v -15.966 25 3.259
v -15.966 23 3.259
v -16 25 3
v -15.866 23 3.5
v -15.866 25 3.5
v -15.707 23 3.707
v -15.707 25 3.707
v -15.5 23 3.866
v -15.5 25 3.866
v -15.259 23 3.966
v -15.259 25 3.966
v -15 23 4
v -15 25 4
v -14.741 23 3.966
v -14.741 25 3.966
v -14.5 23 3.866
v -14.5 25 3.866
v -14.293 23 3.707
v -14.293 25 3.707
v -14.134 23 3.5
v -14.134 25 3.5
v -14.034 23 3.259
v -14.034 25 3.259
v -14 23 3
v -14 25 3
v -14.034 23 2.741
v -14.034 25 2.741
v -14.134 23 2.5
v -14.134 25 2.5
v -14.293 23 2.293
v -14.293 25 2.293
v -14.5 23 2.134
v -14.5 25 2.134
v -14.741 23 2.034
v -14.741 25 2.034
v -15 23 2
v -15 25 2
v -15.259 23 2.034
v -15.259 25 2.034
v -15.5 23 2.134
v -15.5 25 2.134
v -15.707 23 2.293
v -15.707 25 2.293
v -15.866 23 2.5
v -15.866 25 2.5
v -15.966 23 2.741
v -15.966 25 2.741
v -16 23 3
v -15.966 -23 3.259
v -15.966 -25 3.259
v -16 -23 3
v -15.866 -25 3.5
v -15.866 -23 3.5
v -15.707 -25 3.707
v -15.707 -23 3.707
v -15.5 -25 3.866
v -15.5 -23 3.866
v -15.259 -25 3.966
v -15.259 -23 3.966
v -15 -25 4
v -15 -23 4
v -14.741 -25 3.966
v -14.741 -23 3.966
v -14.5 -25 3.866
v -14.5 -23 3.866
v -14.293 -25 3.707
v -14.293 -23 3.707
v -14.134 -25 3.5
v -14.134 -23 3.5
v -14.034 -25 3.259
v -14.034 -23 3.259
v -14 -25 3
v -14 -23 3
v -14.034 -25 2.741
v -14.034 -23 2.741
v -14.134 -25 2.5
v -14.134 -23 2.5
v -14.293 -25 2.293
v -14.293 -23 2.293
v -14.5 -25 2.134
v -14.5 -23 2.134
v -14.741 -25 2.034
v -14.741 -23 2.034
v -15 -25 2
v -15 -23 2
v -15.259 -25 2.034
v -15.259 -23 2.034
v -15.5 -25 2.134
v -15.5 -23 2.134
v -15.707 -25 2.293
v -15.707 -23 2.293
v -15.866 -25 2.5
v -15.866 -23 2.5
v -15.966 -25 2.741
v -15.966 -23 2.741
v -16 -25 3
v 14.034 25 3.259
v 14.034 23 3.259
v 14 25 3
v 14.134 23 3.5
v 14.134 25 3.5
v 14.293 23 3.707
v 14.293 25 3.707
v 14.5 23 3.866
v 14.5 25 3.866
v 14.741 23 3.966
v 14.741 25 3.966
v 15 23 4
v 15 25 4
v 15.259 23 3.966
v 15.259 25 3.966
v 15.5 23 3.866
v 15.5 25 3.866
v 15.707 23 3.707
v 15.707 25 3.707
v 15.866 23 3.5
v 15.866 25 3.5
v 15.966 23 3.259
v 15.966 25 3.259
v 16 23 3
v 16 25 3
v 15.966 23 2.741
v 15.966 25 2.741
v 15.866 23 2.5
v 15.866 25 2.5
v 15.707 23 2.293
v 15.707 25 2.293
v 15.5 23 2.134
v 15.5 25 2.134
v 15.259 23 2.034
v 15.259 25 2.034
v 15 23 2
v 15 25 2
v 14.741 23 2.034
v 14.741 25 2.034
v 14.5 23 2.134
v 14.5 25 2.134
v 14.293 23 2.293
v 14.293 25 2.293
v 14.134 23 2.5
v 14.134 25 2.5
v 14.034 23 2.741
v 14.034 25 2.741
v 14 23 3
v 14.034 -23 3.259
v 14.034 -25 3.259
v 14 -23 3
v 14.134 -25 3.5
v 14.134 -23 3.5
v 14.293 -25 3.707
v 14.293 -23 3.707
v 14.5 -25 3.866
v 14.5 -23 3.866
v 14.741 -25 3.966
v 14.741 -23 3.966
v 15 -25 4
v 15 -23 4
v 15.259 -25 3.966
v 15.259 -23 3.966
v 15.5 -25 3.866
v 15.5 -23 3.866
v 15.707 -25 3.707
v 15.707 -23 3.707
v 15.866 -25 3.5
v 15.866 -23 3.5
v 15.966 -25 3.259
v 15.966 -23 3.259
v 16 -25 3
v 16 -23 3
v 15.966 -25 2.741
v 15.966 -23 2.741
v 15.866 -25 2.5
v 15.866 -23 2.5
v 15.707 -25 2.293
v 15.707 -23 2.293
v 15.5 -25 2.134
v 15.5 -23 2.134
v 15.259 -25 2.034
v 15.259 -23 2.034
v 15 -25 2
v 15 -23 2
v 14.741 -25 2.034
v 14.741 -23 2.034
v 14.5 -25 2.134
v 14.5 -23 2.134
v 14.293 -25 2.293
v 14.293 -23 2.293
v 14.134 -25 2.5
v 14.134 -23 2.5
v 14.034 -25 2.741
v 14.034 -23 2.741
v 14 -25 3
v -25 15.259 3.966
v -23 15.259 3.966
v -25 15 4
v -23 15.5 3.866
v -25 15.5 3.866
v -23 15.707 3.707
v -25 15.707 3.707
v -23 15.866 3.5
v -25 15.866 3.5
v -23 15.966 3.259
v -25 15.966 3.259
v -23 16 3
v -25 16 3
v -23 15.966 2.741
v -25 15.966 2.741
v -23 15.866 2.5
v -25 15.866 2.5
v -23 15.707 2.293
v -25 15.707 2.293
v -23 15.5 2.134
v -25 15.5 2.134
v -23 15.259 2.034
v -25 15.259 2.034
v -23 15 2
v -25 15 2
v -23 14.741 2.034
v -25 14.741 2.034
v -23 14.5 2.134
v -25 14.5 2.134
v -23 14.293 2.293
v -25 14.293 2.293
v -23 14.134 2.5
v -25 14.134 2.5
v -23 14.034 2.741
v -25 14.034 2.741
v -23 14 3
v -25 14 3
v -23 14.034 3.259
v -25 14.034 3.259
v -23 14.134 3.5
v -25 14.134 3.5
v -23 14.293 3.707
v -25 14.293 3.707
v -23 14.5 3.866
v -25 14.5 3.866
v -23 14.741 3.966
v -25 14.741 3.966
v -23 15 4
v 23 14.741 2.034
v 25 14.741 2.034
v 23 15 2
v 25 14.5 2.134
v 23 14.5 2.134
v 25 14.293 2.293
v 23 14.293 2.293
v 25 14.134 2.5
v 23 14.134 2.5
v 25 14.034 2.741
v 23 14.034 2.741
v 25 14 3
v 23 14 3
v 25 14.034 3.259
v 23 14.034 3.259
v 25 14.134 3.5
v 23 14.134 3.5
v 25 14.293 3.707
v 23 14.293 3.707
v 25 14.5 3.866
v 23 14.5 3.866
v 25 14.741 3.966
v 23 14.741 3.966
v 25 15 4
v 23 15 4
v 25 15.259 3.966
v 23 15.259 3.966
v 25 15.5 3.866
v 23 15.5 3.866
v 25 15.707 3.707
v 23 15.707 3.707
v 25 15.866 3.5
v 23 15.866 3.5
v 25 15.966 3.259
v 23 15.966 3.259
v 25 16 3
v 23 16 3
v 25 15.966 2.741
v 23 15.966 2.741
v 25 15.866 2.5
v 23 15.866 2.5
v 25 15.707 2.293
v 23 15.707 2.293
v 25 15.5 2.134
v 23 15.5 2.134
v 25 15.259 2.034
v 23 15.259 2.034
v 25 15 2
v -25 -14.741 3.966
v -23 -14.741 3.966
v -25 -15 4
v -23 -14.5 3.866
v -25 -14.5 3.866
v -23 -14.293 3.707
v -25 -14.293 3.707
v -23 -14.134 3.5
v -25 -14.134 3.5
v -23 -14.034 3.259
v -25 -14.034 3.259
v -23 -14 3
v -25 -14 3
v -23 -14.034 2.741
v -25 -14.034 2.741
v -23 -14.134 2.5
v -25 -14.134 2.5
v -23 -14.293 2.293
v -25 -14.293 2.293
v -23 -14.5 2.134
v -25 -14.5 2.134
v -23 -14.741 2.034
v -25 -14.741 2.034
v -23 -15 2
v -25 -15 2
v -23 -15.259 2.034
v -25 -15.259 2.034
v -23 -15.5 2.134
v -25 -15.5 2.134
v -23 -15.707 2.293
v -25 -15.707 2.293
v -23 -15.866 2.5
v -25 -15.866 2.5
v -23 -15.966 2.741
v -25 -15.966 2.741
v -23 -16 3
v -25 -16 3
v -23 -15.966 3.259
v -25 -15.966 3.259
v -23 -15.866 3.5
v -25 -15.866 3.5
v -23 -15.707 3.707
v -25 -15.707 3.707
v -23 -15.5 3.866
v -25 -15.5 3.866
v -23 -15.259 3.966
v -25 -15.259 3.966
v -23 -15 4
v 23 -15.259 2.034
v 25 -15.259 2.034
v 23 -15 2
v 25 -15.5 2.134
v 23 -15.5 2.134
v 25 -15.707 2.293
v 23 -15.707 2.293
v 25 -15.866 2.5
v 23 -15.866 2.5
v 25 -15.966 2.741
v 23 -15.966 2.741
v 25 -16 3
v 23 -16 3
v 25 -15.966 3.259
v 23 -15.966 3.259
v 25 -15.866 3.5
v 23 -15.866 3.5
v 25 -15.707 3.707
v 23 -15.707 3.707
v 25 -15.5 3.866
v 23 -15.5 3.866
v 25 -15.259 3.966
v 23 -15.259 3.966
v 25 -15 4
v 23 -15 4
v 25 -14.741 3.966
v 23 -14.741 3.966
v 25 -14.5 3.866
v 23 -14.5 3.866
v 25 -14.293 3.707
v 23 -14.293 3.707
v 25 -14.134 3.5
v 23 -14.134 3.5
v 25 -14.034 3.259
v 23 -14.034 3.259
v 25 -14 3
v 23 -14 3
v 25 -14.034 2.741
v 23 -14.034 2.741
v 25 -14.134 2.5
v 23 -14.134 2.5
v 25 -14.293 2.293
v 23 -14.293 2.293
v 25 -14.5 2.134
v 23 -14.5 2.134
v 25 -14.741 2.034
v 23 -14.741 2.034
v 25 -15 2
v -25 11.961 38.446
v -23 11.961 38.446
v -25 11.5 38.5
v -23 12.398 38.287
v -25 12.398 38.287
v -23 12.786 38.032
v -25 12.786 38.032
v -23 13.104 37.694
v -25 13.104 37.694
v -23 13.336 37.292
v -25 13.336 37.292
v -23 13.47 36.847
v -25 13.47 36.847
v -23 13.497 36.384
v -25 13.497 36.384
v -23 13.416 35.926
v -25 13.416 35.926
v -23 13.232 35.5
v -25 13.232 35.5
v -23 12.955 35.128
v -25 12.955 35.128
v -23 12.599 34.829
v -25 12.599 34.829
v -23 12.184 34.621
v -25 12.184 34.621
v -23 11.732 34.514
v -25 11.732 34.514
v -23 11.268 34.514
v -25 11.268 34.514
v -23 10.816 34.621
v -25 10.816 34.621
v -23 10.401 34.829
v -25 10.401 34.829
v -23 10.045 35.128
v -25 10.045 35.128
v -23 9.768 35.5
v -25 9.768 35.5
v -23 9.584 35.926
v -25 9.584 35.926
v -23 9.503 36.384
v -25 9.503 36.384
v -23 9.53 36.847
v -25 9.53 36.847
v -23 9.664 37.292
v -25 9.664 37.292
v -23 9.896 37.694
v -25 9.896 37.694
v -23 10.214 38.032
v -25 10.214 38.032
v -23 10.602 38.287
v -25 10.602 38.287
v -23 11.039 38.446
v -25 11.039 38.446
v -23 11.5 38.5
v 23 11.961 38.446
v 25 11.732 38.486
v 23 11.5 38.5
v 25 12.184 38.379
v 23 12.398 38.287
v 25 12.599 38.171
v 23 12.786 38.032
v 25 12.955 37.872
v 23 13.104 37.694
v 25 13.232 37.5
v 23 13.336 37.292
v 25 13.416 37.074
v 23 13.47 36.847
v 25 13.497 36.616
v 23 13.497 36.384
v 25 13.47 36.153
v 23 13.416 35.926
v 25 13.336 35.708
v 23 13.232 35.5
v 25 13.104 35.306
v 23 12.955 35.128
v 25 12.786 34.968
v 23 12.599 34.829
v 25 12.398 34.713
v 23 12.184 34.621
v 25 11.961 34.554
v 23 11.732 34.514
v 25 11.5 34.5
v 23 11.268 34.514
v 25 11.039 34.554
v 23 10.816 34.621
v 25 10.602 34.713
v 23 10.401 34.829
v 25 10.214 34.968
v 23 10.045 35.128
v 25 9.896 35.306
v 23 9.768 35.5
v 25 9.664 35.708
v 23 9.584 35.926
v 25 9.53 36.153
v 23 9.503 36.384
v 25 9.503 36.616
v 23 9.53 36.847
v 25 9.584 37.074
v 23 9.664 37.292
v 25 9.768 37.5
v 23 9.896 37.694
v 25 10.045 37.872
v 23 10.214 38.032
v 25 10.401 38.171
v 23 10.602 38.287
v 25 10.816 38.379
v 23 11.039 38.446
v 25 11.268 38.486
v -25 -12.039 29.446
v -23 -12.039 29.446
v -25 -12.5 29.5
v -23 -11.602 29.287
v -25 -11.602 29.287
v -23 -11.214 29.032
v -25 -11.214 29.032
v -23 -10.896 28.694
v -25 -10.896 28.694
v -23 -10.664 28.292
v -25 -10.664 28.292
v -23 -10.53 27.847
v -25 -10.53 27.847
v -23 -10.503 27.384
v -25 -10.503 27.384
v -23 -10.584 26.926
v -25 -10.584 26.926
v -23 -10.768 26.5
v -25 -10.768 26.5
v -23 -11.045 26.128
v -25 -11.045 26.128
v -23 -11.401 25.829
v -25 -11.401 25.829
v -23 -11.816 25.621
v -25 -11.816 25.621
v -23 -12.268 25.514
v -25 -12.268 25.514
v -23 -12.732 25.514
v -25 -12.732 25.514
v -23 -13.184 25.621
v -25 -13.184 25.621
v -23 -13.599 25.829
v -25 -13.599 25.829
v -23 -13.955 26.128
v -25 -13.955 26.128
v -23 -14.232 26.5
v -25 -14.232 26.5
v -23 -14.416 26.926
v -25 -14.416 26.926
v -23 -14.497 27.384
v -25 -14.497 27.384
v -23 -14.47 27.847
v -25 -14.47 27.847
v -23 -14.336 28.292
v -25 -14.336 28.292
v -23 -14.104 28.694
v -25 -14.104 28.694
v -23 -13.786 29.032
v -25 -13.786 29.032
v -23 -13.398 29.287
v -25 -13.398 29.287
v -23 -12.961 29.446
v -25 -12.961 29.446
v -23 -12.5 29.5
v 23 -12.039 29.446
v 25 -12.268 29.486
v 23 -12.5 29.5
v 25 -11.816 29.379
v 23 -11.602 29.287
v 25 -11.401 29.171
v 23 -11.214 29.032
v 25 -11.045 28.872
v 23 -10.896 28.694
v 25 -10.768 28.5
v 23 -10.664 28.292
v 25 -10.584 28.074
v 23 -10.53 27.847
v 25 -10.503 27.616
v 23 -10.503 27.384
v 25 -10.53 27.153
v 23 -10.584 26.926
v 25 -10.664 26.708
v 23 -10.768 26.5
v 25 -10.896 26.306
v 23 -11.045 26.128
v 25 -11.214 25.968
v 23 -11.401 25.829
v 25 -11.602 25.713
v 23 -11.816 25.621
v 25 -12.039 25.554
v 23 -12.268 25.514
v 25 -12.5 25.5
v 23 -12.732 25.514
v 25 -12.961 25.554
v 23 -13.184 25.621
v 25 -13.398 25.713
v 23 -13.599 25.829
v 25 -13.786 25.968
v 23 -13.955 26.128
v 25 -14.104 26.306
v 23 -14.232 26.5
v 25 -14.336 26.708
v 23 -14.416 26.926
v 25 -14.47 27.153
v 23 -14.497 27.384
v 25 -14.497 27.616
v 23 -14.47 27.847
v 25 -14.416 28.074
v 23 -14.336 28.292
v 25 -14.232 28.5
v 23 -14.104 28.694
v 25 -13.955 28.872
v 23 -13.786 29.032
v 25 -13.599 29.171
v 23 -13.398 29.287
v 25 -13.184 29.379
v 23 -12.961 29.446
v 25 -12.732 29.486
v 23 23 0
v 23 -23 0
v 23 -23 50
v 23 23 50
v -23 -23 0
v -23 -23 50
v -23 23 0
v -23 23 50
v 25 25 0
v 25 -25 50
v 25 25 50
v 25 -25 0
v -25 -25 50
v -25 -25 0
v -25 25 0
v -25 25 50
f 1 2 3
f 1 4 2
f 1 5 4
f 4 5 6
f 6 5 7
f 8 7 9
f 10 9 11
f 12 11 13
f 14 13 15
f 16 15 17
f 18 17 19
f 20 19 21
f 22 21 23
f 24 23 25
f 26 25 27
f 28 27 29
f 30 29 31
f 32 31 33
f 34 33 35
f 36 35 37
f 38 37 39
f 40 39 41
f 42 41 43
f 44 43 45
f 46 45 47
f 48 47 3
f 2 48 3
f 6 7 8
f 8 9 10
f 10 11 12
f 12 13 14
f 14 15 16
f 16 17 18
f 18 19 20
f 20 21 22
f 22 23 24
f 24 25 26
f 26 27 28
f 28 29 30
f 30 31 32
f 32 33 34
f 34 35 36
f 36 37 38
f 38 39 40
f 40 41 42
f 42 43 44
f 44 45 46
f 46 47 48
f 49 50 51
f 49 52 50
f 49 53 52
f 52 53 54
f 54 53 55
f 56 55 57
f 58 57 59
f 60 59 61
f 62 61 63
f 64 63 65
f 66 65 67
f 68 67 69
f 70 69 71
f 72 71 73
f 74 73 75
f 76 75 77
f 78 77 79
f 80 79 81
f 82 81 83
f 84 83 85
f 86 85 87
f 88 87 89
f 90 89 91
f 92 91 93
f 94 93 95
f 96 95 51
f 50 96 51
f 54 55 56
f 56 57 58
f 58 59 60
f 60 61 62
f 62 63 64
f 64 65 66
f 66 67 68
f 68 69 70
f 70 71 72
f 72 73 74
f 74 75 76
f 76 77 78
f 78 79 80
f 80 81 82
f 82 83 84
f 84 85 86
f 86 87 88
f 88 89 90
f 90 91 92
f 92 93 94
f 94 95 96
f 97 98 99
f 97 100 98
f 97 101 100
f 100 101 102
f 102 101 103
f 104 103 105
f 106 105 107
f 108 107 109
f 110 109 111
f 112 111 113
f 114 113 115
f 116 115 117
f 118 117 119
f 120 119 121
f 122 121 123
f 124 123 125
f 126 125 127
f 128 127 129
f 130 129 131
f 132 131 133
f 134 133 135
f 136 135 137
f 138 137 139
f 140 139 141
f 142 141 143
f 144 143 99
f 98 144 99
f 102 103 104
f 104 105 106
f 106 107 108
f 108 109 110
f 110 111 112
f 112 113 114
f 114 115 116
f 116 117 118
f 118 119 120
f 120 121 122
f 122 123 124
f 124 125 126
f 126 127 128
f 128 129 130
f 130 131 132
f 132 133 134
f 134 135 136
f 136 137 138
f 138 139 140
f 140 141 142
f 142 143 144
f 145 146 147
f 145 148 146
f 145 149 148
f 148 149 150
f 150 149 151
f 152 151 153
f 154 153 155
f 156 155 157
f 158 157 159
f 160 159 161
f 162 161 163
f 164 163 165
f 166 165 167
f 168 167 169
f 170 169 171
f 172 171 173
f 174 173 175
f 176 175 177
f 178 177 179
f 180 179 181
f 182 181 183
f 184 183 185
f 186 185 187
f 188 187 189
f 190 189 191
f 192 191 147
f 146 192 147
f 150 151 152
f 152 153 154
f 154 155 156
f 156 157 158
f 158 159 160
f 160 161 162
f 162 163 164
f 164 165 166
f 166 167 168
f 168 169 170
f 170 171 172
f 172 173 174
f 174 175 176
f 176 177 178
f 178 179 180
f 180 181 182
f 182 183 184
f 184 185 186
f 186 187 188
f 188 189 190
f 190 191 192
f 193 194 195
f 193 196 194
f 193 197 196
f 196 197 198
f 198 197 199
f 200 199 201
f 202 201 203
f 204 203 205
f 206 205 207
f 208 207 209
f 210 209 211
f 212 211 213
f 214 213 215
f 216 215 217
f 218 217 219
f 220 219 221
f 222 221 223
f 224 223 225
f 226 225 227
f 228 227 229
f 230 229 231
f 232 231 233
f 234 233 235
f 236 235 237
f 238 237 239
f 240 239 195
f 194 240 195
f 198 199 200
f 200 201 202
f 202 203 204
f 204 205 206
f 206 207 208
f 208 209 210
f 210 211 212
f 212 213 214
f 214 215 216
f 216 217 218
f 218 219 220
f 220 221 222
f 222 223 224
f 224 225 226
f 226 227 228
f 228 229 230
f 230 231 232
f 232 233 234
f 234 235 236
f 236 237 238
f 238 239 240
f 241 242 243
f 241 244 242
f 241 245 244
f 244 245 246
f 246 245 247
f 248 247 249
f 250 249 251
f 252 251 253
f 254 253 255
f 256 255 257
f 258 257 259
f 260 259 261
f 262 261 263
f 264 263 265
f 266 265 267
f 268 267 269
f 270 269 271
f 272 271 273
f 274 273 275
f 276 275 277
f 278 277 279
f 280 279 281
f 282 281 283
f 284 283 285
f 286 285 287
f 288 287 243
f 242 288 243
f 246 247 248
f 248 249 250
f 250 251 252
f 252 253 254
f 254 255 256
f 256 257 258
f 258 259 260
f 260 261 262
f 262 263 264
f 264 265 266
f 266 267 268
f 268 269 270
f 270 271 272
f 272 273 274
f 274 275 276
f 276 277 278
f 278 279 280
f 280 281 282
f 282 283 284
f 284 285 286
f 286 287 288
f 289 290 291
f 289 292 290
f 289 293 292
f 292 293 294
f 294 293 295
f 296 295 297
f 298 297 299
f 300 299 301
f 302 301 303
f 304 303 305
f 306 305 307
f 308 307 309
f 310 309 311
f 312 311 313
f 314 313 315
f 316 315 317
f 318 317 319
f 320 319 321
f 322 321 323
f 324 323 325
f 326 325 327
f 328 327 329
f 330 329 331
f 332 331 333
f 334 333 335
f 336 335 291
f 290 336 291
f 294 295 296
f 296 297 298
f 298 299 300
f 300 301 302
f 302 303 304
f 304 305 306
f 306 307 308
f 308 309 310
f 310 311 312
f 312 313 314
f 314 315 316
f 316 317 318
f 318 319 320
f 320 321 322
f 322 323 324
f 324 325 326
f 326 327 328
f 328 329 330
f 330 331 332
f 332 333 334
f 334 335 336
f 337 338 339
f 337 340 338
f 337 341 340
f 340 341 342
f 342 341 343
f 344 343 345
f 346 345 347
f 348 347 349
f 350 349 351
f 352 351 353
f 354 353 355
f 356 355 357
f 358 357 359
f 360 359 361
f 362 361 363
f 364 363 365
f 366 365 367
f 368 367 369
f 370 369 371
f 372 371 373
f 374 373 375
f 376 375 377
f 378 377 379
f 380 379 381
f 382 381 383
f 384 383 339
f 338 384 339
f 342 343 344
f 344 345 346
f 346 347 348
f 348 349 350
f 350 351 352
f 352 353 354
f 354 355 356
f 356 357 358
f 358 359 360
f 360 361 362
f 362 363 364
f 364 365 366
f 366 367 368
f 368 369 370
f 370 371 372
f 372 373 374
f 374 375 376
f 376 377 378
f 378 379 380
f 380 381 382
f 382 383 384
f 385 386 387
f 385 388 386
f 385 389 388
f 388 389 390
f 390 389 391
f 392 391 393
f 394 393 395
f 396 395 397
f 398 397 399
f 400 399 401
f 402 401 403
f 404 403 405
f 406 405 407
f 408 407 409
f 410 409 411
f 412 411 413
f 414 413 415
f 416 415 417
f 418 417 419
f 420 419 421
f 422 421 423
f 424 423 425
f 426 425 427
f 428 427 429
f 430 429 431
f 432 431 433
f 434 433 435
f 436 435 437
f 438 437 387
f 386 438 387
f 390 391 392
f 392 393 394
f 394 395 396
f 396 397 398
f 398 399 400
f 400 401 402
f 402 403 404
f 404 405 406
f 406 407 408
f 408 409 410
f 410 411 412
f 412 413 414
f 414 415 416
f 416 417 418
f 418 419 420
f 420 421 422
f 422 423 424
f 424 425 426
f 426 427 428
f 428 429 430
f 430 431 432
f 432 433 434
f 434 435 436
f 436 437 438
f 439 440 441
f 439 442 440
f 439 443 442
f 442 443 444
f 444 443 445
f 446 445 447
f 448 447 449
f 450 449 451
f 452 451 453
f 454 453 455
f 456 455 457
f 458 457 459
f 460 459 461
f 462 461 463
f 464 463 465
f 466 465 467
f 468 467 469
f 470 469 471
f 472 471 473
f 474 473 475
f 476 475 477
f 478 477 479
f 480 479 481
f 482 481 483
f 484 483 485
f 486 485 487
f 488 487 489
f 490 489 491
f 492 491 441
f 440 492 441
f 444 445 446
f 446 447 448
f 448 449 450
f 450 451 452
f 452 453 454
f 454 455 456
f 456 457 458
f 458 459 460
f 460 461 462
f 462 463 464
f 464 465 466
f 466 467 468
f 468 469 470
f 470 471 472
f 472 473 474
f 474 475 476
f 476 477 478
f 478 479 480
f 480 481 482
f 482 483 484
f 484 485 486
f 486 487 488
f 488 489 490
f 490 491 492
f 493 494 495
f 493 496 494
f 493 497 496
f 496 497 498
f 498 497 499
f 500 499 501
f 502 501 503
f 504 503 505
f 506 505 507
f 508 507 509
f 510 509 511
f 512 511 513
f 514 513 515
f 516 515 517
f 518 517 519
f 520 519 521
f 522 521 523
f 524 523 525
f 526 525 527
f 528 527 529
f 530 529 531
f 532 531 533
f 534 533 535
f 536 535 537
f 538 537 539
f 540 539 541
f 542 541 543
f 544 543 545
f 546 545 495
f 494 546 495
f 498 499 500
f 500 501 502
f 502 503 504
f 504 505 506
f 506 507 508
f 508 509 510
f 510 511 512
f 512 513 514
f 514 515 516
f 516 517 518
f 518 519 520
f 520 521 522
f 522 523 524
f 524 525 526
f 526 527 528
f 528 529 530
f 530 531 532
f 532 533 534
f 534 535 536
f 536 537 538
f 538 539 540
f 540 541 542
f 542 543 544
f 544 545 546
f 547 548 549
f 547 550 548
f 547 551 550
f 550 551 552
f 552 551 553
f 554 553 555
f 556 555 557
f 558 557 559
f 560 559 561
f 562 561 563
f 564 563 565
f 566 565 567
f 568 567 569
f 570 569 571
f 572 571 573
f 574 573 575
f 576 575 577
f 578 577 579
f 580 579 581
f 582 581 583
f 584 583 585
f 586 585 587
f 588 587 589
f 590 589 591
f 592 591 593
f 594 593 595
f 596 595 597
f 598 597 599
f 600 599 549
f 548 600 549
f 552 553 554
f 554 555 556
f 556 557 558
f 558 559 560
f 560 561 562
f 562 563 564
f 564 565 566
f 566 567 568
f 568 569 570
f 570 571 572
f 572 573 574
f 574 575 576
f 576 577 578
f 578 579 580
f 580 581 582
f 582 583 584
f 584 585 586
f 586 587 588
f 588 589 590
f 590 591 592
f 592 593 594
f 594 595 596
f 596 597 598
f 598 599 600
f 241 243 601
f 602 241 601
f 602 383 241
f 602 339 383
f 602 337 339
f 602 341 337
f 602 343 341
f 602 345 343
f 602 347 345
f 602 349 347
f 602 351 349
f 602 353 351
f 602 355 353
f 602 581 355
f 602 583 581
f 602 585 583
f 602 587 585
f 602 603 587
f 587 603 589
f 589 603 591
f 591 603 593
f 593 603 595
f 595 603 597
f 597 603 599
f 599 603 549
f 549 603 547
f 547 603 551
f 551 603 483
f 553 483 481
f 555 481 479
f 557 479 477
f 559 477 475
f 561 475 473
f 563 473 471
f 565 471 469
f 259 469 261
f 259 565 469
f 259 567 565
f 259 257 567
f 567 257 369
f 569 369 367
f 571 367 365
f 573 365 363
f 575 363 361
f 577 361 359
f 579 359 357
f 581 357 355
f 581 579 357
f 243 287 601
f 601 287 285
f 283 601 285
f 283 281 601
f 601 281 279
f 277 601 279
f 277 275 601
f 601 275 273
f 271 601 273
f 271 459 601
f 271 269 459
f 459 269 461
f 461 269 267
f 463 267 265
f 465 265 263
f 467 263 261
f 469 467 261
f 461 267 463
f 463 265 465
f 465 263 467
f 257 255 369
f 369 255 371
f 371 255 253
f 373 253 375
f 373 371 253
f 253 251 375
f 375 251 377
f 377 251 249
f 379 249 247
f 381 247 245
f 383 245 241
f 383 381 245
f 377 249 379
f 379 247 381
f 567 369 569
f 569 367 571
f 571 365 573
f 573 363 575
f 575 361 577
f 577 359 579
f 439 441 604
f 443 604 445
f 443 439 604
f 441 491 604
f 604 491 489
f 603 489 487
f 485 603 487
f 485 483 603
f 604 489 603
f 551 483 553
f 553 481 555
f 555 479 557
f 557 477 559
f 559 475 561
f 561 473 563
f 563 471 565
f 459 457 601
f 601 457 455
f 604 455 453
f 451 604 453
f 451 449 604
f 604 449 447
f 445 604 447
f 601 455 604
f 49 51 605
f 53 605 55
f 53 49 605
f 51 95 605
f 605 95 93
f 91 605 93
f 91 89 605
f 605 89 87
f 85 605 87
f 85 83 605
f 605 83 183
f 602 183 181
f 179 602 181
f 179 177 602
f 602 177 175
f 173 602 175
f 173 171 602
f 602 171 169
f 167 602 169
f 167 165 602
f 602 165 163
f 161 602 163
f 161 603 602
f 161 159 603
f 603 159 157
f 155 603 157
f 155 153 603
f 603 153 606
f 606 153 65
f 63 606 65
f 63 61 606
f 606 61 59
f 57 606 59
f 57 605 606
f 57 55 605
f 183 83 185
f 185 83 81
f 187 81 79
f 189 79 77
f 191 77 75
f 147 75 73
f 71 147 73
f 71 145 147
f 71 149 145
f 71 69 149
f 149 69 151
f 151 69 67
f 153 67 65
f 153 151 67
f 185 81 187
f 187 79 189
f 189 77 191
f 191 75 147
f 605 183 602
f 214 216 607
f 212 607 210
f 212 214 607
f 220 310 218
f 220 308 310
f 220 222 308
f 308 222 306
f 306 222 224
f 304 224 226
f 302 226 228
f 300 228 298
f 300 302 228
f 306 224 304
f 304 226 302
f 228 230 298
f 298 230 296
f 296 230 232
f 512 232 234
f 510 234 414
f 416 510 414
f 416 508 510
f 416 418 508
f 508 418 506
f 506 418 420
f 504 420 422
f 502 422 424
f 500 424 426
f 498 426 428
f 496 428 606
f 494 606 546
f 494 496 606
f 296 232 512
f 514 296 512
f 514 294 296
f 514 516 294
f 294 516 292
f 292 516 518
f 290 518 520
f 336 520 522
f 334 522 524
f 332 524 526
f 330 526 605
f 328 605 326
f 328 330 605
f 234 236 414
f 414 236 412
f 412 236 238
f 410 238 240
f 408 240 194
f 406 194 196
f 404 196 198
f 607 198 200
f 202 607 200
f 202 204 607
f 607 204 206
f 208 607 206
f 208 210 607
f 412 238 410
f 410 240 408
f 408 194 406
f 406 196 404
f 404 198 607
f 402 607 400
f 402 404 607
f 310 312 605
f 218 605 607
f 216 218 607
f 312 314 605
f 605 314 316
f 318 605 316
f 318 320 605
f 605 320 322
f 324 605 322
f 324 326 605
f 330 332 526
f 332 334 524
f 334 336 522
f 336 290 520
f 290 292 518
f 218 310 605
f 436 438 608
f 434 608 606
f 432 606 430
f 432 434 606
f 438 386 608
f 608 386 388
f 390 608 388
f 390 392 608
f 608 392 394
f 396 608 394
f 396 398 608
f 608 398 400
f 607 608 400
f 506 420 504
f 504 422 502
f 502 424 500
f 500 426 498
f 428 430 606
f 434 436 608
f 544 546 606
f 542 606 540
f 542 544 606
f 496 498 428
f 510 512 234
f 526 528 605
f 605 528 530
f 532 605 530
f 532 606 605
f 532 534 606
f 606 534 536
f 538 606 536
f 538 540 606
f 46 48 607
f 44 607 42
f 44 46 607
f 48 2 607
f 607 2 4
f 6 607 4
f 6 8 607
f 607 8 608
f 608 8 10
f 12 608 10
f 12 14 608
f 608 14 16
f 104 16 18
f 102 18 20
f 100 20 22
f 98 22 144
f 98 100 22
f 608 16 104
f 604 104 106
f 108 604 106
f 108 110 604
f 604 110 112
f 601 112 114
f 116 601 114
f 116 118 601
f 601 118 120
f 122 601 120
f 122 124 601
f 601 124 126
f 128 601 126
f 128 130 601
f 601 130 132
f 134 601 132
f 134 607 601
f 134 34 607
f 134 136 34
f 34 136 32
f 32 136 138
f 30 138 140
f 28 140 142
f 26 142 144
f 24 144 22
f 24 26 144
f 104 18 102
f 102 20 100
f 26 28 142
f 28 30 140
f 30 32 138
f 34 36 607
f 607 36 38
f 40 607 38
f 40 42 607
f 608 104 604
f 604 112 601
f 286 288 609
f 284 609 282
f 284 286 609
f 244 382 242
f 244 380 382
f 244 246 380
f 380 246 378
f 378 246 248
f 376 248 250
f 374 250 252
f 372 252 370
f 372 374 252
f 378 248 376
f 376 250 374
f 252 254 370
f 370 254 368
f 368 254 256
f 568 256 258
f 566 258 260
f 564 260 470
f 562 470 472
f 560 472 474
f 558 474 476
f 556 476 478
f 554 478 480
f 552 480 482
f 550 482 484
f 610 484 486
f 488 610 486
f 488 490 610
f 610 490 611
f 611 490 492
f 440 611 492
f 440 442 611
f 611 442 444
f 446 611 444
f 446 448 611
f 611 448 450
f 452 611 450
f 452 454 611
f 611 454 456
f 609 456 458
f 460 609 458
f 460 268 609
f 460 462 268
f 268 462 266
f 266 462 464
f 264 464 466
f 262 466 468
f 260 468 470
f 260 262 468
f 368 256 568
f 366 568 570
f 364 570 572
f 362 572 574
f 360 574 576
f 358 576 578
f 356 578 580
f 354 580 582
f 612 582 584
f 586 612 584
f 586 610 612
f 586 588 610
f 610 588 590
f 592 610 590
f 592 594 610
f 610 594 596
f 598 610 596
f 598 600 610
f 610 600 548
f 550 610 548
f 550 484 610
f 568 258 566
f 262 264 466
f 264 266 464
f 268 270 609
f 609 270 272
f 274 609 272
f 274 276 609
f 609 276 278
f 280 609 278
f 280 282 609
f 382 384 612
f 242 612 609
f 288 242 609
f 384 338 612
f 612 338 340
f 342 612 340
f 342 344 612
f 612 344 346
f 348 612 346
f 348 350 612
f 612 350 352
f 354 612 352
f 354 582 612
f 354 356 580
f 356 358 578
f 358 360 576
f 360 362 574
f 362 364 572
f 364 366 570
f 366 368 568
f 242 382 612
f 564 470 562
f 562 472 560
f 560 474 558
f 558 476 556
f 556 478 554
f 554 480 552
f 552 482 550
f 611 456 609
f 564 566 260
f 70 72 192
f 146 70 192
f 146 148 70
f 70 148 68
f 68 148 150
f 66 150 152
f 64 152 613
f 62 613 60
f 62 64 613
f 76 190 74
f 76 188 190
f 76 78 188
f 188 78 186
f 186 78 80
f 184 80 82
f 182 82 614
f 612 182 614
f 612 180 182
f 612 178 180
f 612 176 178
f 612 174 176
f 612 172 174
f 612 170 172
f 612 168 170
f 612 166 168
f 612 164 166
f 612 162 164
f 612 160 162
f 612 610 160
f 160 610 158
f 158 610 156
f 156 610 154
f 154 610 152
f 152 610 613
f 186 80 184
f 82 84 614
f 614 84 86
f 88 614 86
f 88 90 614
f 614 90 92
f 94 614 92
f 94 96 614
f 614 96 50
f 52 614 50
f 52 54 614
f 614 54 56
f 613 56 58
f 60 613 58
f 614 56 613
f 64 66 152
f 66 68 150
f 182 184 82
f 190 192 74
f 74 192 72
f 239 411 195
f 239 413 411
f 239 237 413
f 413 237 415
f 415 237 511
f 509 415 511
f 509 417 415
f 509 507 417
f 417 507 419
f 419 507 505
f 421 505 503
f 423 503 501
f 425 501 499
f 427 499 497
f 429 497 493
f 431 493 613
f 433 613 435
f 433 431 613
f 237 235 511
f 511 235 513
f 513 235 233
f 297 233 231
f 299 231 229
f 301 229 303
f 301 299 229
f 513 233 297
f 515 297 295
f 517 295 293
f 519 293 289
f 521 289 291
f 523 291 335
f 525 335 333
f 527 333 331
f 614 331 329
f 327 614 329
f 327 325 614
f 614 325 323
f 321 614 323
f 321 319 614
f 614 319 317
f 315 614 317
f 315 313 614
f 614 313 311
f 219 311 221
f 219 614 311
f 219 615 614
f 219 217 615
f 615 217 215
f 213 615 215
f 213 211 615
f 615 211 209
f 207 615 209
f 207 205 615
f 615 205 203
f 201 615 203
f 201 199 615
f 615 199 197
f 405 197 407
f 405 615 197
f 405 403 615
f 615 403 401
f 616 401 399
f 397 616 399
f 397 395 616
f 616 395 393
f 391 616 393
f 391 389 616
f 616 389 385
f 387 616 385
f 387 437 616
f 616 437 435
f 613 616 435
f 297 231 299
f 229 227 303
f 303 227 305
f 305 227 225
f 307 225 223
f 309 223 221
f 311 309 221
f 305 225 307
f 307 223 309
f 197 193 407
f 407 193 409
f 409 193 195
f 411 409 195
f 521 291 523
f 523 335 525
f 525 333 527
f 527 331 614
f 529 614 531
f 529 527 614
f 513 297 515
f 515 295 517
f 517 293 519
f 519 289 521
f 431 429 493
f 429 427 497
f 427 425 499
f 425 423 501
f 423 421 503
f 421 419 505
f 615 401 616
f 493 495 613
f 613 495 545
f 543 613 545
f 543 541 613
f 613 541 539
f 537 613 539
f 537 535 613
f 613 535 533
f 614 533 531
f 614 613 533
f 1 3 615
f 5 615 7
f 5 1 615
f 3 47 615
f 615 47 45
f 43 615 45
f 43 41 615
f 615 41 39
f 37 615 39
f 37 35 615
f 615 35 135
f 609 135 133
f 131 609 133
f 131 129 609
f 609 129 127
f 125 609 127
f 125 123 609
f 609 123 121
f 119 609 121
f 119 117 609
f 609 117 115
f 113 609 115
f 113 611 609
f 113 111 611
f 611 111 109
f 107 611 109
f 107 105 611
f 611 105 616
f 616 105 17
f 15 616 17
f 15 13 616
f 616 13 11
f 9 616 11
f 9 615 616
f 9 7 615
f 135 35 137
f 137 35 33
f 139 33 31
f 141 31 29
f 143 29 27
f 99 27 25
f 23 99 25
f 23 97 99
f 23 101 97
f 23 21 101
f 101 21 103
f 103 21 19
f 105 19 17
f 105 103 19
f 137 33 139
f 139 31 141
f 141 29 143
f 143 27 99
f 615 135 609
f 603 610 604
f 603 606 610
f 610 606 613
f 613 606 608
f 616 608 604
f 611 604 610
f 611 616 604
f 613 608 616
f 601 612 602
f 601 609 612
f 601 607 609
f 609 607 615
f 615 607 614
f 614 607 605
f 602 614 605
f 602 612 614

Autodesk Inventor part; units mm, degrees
ref_plane "YZ Plane" through (0, 0, 0) normal (1, 0, 0) x (0, 1, 0)
ref_plane "XZ Plane" through (0, 0, 0) normal (0, 1, 0) x (-1, 0, 0)
ref_plane "XY Plane" through (0, 0, 0) normal (0, 0, 1) x (1, 0, 0)
sketch "スケッチ1" plane through (0, 0, 0) normal (0, 0, 1) x (1, 0, 0)
  line L0 (-25, 25) -> (25, 25)
  line L1 (25, 25) -> (25, -25)
  line L2 (25, -25) -> (-25, -25)
  line L3 (-25, -25) -> (-25, 25)
  line L4 (-23, 23) -> (23, 23)
  line L5 (23, 23) -> (23, -23)
  line L6 (23, -23) -> (-23, -23)
  line L7 (-23, -23) -> (-23, 23)
  point P0 (0, 0)
  dimension "d0" = 50
  dimension "d1" = 50
  dimension "d4" = 25
  dimension "d5" = 25
  dimension "d6" = 46
  dimension "d7" = 2
  dimension "d8" = 46
  dimension "d9" = 2
extrude "押し出し1" add sketch "スケッチ1" along normal blind 50
sketch "スケッチ11" plane through (25, -25, 0) normal (1, 0, 0) x (0, 0, -1)
  circle A0 centre (-36.5, 36.5) radius 1.5
  line L0 (-50, 50) -> (-50, 0) projected
  circle A1 centre (-27.5, 12.5) radius 1.5
  line L1 (0, 50) -> (0, 0) projected
  line L2 (0, 50) -> (-50, 50) projected
  point P0 (0, 25)
  point P1 (-50, 43)
  dimension "d109" = 3
  dimension "d128" = 24
  dimension "d237" = 13.5
  dimension "d238" = 27.5
  dimension "d239" = 13.5
hole "穴6" at (25, -12.5, 27.5) at (25, 11.5, 36.5) direction (-1, 0, 0) diameter 4 end through all
sketch "スケッチ16" plane through (-25, -25, 0) normal (-1, 0, 0) x (0, 0, 1)
  line L0 (0, 50) -> (50, 50) projected
  circle A0 centre (3, 40) radius 1
  circle A1 centre (3, 10) radius 1
  line L1 (0, 48) -> (0, 2) projected
  line L2 (0, 0) -> (50, 0) projected
  point P0 (0, 25)
  dimension "d175" = 10
  dimension "d176" = 3
  dimension "d178" = 3
  dimension "d287" = 10
  dimension "d288" = 2
hole "穴16" at (-25, 15, 3) at (-25, -15, 3) direction (1, 0, 0) diameter 2 end through all
sketch "スケッチ15" plane through (-25, -25, 0) normal (0, -1, 0) x (1, 0, 0)
  line L0 (0, 0) -> (0, 50) projected
  line L1 (50, 0) -> (0, 0) projected
  circle A0 centre (10, 3) radius 1
  circle A1 centre (40, 3) radius 1
  line L2 (50, 0) -> (50, 50) projected
  point P0 (49.5, 0)
  point P1 (49.5, 50)
  point P2 (25, 0)
  dimension "d167" = 10
  dimension "d170" = 3
  dimension "d172" = 3
  dimension "d267" = 2
  dimension "d286" = 10
hole "穴17" at (-15, -25, 3) at (15, -25, 3) direction (0, 1, 0) diameter 2 end through all
properties part number "06" material "アルミニウム 6061"
